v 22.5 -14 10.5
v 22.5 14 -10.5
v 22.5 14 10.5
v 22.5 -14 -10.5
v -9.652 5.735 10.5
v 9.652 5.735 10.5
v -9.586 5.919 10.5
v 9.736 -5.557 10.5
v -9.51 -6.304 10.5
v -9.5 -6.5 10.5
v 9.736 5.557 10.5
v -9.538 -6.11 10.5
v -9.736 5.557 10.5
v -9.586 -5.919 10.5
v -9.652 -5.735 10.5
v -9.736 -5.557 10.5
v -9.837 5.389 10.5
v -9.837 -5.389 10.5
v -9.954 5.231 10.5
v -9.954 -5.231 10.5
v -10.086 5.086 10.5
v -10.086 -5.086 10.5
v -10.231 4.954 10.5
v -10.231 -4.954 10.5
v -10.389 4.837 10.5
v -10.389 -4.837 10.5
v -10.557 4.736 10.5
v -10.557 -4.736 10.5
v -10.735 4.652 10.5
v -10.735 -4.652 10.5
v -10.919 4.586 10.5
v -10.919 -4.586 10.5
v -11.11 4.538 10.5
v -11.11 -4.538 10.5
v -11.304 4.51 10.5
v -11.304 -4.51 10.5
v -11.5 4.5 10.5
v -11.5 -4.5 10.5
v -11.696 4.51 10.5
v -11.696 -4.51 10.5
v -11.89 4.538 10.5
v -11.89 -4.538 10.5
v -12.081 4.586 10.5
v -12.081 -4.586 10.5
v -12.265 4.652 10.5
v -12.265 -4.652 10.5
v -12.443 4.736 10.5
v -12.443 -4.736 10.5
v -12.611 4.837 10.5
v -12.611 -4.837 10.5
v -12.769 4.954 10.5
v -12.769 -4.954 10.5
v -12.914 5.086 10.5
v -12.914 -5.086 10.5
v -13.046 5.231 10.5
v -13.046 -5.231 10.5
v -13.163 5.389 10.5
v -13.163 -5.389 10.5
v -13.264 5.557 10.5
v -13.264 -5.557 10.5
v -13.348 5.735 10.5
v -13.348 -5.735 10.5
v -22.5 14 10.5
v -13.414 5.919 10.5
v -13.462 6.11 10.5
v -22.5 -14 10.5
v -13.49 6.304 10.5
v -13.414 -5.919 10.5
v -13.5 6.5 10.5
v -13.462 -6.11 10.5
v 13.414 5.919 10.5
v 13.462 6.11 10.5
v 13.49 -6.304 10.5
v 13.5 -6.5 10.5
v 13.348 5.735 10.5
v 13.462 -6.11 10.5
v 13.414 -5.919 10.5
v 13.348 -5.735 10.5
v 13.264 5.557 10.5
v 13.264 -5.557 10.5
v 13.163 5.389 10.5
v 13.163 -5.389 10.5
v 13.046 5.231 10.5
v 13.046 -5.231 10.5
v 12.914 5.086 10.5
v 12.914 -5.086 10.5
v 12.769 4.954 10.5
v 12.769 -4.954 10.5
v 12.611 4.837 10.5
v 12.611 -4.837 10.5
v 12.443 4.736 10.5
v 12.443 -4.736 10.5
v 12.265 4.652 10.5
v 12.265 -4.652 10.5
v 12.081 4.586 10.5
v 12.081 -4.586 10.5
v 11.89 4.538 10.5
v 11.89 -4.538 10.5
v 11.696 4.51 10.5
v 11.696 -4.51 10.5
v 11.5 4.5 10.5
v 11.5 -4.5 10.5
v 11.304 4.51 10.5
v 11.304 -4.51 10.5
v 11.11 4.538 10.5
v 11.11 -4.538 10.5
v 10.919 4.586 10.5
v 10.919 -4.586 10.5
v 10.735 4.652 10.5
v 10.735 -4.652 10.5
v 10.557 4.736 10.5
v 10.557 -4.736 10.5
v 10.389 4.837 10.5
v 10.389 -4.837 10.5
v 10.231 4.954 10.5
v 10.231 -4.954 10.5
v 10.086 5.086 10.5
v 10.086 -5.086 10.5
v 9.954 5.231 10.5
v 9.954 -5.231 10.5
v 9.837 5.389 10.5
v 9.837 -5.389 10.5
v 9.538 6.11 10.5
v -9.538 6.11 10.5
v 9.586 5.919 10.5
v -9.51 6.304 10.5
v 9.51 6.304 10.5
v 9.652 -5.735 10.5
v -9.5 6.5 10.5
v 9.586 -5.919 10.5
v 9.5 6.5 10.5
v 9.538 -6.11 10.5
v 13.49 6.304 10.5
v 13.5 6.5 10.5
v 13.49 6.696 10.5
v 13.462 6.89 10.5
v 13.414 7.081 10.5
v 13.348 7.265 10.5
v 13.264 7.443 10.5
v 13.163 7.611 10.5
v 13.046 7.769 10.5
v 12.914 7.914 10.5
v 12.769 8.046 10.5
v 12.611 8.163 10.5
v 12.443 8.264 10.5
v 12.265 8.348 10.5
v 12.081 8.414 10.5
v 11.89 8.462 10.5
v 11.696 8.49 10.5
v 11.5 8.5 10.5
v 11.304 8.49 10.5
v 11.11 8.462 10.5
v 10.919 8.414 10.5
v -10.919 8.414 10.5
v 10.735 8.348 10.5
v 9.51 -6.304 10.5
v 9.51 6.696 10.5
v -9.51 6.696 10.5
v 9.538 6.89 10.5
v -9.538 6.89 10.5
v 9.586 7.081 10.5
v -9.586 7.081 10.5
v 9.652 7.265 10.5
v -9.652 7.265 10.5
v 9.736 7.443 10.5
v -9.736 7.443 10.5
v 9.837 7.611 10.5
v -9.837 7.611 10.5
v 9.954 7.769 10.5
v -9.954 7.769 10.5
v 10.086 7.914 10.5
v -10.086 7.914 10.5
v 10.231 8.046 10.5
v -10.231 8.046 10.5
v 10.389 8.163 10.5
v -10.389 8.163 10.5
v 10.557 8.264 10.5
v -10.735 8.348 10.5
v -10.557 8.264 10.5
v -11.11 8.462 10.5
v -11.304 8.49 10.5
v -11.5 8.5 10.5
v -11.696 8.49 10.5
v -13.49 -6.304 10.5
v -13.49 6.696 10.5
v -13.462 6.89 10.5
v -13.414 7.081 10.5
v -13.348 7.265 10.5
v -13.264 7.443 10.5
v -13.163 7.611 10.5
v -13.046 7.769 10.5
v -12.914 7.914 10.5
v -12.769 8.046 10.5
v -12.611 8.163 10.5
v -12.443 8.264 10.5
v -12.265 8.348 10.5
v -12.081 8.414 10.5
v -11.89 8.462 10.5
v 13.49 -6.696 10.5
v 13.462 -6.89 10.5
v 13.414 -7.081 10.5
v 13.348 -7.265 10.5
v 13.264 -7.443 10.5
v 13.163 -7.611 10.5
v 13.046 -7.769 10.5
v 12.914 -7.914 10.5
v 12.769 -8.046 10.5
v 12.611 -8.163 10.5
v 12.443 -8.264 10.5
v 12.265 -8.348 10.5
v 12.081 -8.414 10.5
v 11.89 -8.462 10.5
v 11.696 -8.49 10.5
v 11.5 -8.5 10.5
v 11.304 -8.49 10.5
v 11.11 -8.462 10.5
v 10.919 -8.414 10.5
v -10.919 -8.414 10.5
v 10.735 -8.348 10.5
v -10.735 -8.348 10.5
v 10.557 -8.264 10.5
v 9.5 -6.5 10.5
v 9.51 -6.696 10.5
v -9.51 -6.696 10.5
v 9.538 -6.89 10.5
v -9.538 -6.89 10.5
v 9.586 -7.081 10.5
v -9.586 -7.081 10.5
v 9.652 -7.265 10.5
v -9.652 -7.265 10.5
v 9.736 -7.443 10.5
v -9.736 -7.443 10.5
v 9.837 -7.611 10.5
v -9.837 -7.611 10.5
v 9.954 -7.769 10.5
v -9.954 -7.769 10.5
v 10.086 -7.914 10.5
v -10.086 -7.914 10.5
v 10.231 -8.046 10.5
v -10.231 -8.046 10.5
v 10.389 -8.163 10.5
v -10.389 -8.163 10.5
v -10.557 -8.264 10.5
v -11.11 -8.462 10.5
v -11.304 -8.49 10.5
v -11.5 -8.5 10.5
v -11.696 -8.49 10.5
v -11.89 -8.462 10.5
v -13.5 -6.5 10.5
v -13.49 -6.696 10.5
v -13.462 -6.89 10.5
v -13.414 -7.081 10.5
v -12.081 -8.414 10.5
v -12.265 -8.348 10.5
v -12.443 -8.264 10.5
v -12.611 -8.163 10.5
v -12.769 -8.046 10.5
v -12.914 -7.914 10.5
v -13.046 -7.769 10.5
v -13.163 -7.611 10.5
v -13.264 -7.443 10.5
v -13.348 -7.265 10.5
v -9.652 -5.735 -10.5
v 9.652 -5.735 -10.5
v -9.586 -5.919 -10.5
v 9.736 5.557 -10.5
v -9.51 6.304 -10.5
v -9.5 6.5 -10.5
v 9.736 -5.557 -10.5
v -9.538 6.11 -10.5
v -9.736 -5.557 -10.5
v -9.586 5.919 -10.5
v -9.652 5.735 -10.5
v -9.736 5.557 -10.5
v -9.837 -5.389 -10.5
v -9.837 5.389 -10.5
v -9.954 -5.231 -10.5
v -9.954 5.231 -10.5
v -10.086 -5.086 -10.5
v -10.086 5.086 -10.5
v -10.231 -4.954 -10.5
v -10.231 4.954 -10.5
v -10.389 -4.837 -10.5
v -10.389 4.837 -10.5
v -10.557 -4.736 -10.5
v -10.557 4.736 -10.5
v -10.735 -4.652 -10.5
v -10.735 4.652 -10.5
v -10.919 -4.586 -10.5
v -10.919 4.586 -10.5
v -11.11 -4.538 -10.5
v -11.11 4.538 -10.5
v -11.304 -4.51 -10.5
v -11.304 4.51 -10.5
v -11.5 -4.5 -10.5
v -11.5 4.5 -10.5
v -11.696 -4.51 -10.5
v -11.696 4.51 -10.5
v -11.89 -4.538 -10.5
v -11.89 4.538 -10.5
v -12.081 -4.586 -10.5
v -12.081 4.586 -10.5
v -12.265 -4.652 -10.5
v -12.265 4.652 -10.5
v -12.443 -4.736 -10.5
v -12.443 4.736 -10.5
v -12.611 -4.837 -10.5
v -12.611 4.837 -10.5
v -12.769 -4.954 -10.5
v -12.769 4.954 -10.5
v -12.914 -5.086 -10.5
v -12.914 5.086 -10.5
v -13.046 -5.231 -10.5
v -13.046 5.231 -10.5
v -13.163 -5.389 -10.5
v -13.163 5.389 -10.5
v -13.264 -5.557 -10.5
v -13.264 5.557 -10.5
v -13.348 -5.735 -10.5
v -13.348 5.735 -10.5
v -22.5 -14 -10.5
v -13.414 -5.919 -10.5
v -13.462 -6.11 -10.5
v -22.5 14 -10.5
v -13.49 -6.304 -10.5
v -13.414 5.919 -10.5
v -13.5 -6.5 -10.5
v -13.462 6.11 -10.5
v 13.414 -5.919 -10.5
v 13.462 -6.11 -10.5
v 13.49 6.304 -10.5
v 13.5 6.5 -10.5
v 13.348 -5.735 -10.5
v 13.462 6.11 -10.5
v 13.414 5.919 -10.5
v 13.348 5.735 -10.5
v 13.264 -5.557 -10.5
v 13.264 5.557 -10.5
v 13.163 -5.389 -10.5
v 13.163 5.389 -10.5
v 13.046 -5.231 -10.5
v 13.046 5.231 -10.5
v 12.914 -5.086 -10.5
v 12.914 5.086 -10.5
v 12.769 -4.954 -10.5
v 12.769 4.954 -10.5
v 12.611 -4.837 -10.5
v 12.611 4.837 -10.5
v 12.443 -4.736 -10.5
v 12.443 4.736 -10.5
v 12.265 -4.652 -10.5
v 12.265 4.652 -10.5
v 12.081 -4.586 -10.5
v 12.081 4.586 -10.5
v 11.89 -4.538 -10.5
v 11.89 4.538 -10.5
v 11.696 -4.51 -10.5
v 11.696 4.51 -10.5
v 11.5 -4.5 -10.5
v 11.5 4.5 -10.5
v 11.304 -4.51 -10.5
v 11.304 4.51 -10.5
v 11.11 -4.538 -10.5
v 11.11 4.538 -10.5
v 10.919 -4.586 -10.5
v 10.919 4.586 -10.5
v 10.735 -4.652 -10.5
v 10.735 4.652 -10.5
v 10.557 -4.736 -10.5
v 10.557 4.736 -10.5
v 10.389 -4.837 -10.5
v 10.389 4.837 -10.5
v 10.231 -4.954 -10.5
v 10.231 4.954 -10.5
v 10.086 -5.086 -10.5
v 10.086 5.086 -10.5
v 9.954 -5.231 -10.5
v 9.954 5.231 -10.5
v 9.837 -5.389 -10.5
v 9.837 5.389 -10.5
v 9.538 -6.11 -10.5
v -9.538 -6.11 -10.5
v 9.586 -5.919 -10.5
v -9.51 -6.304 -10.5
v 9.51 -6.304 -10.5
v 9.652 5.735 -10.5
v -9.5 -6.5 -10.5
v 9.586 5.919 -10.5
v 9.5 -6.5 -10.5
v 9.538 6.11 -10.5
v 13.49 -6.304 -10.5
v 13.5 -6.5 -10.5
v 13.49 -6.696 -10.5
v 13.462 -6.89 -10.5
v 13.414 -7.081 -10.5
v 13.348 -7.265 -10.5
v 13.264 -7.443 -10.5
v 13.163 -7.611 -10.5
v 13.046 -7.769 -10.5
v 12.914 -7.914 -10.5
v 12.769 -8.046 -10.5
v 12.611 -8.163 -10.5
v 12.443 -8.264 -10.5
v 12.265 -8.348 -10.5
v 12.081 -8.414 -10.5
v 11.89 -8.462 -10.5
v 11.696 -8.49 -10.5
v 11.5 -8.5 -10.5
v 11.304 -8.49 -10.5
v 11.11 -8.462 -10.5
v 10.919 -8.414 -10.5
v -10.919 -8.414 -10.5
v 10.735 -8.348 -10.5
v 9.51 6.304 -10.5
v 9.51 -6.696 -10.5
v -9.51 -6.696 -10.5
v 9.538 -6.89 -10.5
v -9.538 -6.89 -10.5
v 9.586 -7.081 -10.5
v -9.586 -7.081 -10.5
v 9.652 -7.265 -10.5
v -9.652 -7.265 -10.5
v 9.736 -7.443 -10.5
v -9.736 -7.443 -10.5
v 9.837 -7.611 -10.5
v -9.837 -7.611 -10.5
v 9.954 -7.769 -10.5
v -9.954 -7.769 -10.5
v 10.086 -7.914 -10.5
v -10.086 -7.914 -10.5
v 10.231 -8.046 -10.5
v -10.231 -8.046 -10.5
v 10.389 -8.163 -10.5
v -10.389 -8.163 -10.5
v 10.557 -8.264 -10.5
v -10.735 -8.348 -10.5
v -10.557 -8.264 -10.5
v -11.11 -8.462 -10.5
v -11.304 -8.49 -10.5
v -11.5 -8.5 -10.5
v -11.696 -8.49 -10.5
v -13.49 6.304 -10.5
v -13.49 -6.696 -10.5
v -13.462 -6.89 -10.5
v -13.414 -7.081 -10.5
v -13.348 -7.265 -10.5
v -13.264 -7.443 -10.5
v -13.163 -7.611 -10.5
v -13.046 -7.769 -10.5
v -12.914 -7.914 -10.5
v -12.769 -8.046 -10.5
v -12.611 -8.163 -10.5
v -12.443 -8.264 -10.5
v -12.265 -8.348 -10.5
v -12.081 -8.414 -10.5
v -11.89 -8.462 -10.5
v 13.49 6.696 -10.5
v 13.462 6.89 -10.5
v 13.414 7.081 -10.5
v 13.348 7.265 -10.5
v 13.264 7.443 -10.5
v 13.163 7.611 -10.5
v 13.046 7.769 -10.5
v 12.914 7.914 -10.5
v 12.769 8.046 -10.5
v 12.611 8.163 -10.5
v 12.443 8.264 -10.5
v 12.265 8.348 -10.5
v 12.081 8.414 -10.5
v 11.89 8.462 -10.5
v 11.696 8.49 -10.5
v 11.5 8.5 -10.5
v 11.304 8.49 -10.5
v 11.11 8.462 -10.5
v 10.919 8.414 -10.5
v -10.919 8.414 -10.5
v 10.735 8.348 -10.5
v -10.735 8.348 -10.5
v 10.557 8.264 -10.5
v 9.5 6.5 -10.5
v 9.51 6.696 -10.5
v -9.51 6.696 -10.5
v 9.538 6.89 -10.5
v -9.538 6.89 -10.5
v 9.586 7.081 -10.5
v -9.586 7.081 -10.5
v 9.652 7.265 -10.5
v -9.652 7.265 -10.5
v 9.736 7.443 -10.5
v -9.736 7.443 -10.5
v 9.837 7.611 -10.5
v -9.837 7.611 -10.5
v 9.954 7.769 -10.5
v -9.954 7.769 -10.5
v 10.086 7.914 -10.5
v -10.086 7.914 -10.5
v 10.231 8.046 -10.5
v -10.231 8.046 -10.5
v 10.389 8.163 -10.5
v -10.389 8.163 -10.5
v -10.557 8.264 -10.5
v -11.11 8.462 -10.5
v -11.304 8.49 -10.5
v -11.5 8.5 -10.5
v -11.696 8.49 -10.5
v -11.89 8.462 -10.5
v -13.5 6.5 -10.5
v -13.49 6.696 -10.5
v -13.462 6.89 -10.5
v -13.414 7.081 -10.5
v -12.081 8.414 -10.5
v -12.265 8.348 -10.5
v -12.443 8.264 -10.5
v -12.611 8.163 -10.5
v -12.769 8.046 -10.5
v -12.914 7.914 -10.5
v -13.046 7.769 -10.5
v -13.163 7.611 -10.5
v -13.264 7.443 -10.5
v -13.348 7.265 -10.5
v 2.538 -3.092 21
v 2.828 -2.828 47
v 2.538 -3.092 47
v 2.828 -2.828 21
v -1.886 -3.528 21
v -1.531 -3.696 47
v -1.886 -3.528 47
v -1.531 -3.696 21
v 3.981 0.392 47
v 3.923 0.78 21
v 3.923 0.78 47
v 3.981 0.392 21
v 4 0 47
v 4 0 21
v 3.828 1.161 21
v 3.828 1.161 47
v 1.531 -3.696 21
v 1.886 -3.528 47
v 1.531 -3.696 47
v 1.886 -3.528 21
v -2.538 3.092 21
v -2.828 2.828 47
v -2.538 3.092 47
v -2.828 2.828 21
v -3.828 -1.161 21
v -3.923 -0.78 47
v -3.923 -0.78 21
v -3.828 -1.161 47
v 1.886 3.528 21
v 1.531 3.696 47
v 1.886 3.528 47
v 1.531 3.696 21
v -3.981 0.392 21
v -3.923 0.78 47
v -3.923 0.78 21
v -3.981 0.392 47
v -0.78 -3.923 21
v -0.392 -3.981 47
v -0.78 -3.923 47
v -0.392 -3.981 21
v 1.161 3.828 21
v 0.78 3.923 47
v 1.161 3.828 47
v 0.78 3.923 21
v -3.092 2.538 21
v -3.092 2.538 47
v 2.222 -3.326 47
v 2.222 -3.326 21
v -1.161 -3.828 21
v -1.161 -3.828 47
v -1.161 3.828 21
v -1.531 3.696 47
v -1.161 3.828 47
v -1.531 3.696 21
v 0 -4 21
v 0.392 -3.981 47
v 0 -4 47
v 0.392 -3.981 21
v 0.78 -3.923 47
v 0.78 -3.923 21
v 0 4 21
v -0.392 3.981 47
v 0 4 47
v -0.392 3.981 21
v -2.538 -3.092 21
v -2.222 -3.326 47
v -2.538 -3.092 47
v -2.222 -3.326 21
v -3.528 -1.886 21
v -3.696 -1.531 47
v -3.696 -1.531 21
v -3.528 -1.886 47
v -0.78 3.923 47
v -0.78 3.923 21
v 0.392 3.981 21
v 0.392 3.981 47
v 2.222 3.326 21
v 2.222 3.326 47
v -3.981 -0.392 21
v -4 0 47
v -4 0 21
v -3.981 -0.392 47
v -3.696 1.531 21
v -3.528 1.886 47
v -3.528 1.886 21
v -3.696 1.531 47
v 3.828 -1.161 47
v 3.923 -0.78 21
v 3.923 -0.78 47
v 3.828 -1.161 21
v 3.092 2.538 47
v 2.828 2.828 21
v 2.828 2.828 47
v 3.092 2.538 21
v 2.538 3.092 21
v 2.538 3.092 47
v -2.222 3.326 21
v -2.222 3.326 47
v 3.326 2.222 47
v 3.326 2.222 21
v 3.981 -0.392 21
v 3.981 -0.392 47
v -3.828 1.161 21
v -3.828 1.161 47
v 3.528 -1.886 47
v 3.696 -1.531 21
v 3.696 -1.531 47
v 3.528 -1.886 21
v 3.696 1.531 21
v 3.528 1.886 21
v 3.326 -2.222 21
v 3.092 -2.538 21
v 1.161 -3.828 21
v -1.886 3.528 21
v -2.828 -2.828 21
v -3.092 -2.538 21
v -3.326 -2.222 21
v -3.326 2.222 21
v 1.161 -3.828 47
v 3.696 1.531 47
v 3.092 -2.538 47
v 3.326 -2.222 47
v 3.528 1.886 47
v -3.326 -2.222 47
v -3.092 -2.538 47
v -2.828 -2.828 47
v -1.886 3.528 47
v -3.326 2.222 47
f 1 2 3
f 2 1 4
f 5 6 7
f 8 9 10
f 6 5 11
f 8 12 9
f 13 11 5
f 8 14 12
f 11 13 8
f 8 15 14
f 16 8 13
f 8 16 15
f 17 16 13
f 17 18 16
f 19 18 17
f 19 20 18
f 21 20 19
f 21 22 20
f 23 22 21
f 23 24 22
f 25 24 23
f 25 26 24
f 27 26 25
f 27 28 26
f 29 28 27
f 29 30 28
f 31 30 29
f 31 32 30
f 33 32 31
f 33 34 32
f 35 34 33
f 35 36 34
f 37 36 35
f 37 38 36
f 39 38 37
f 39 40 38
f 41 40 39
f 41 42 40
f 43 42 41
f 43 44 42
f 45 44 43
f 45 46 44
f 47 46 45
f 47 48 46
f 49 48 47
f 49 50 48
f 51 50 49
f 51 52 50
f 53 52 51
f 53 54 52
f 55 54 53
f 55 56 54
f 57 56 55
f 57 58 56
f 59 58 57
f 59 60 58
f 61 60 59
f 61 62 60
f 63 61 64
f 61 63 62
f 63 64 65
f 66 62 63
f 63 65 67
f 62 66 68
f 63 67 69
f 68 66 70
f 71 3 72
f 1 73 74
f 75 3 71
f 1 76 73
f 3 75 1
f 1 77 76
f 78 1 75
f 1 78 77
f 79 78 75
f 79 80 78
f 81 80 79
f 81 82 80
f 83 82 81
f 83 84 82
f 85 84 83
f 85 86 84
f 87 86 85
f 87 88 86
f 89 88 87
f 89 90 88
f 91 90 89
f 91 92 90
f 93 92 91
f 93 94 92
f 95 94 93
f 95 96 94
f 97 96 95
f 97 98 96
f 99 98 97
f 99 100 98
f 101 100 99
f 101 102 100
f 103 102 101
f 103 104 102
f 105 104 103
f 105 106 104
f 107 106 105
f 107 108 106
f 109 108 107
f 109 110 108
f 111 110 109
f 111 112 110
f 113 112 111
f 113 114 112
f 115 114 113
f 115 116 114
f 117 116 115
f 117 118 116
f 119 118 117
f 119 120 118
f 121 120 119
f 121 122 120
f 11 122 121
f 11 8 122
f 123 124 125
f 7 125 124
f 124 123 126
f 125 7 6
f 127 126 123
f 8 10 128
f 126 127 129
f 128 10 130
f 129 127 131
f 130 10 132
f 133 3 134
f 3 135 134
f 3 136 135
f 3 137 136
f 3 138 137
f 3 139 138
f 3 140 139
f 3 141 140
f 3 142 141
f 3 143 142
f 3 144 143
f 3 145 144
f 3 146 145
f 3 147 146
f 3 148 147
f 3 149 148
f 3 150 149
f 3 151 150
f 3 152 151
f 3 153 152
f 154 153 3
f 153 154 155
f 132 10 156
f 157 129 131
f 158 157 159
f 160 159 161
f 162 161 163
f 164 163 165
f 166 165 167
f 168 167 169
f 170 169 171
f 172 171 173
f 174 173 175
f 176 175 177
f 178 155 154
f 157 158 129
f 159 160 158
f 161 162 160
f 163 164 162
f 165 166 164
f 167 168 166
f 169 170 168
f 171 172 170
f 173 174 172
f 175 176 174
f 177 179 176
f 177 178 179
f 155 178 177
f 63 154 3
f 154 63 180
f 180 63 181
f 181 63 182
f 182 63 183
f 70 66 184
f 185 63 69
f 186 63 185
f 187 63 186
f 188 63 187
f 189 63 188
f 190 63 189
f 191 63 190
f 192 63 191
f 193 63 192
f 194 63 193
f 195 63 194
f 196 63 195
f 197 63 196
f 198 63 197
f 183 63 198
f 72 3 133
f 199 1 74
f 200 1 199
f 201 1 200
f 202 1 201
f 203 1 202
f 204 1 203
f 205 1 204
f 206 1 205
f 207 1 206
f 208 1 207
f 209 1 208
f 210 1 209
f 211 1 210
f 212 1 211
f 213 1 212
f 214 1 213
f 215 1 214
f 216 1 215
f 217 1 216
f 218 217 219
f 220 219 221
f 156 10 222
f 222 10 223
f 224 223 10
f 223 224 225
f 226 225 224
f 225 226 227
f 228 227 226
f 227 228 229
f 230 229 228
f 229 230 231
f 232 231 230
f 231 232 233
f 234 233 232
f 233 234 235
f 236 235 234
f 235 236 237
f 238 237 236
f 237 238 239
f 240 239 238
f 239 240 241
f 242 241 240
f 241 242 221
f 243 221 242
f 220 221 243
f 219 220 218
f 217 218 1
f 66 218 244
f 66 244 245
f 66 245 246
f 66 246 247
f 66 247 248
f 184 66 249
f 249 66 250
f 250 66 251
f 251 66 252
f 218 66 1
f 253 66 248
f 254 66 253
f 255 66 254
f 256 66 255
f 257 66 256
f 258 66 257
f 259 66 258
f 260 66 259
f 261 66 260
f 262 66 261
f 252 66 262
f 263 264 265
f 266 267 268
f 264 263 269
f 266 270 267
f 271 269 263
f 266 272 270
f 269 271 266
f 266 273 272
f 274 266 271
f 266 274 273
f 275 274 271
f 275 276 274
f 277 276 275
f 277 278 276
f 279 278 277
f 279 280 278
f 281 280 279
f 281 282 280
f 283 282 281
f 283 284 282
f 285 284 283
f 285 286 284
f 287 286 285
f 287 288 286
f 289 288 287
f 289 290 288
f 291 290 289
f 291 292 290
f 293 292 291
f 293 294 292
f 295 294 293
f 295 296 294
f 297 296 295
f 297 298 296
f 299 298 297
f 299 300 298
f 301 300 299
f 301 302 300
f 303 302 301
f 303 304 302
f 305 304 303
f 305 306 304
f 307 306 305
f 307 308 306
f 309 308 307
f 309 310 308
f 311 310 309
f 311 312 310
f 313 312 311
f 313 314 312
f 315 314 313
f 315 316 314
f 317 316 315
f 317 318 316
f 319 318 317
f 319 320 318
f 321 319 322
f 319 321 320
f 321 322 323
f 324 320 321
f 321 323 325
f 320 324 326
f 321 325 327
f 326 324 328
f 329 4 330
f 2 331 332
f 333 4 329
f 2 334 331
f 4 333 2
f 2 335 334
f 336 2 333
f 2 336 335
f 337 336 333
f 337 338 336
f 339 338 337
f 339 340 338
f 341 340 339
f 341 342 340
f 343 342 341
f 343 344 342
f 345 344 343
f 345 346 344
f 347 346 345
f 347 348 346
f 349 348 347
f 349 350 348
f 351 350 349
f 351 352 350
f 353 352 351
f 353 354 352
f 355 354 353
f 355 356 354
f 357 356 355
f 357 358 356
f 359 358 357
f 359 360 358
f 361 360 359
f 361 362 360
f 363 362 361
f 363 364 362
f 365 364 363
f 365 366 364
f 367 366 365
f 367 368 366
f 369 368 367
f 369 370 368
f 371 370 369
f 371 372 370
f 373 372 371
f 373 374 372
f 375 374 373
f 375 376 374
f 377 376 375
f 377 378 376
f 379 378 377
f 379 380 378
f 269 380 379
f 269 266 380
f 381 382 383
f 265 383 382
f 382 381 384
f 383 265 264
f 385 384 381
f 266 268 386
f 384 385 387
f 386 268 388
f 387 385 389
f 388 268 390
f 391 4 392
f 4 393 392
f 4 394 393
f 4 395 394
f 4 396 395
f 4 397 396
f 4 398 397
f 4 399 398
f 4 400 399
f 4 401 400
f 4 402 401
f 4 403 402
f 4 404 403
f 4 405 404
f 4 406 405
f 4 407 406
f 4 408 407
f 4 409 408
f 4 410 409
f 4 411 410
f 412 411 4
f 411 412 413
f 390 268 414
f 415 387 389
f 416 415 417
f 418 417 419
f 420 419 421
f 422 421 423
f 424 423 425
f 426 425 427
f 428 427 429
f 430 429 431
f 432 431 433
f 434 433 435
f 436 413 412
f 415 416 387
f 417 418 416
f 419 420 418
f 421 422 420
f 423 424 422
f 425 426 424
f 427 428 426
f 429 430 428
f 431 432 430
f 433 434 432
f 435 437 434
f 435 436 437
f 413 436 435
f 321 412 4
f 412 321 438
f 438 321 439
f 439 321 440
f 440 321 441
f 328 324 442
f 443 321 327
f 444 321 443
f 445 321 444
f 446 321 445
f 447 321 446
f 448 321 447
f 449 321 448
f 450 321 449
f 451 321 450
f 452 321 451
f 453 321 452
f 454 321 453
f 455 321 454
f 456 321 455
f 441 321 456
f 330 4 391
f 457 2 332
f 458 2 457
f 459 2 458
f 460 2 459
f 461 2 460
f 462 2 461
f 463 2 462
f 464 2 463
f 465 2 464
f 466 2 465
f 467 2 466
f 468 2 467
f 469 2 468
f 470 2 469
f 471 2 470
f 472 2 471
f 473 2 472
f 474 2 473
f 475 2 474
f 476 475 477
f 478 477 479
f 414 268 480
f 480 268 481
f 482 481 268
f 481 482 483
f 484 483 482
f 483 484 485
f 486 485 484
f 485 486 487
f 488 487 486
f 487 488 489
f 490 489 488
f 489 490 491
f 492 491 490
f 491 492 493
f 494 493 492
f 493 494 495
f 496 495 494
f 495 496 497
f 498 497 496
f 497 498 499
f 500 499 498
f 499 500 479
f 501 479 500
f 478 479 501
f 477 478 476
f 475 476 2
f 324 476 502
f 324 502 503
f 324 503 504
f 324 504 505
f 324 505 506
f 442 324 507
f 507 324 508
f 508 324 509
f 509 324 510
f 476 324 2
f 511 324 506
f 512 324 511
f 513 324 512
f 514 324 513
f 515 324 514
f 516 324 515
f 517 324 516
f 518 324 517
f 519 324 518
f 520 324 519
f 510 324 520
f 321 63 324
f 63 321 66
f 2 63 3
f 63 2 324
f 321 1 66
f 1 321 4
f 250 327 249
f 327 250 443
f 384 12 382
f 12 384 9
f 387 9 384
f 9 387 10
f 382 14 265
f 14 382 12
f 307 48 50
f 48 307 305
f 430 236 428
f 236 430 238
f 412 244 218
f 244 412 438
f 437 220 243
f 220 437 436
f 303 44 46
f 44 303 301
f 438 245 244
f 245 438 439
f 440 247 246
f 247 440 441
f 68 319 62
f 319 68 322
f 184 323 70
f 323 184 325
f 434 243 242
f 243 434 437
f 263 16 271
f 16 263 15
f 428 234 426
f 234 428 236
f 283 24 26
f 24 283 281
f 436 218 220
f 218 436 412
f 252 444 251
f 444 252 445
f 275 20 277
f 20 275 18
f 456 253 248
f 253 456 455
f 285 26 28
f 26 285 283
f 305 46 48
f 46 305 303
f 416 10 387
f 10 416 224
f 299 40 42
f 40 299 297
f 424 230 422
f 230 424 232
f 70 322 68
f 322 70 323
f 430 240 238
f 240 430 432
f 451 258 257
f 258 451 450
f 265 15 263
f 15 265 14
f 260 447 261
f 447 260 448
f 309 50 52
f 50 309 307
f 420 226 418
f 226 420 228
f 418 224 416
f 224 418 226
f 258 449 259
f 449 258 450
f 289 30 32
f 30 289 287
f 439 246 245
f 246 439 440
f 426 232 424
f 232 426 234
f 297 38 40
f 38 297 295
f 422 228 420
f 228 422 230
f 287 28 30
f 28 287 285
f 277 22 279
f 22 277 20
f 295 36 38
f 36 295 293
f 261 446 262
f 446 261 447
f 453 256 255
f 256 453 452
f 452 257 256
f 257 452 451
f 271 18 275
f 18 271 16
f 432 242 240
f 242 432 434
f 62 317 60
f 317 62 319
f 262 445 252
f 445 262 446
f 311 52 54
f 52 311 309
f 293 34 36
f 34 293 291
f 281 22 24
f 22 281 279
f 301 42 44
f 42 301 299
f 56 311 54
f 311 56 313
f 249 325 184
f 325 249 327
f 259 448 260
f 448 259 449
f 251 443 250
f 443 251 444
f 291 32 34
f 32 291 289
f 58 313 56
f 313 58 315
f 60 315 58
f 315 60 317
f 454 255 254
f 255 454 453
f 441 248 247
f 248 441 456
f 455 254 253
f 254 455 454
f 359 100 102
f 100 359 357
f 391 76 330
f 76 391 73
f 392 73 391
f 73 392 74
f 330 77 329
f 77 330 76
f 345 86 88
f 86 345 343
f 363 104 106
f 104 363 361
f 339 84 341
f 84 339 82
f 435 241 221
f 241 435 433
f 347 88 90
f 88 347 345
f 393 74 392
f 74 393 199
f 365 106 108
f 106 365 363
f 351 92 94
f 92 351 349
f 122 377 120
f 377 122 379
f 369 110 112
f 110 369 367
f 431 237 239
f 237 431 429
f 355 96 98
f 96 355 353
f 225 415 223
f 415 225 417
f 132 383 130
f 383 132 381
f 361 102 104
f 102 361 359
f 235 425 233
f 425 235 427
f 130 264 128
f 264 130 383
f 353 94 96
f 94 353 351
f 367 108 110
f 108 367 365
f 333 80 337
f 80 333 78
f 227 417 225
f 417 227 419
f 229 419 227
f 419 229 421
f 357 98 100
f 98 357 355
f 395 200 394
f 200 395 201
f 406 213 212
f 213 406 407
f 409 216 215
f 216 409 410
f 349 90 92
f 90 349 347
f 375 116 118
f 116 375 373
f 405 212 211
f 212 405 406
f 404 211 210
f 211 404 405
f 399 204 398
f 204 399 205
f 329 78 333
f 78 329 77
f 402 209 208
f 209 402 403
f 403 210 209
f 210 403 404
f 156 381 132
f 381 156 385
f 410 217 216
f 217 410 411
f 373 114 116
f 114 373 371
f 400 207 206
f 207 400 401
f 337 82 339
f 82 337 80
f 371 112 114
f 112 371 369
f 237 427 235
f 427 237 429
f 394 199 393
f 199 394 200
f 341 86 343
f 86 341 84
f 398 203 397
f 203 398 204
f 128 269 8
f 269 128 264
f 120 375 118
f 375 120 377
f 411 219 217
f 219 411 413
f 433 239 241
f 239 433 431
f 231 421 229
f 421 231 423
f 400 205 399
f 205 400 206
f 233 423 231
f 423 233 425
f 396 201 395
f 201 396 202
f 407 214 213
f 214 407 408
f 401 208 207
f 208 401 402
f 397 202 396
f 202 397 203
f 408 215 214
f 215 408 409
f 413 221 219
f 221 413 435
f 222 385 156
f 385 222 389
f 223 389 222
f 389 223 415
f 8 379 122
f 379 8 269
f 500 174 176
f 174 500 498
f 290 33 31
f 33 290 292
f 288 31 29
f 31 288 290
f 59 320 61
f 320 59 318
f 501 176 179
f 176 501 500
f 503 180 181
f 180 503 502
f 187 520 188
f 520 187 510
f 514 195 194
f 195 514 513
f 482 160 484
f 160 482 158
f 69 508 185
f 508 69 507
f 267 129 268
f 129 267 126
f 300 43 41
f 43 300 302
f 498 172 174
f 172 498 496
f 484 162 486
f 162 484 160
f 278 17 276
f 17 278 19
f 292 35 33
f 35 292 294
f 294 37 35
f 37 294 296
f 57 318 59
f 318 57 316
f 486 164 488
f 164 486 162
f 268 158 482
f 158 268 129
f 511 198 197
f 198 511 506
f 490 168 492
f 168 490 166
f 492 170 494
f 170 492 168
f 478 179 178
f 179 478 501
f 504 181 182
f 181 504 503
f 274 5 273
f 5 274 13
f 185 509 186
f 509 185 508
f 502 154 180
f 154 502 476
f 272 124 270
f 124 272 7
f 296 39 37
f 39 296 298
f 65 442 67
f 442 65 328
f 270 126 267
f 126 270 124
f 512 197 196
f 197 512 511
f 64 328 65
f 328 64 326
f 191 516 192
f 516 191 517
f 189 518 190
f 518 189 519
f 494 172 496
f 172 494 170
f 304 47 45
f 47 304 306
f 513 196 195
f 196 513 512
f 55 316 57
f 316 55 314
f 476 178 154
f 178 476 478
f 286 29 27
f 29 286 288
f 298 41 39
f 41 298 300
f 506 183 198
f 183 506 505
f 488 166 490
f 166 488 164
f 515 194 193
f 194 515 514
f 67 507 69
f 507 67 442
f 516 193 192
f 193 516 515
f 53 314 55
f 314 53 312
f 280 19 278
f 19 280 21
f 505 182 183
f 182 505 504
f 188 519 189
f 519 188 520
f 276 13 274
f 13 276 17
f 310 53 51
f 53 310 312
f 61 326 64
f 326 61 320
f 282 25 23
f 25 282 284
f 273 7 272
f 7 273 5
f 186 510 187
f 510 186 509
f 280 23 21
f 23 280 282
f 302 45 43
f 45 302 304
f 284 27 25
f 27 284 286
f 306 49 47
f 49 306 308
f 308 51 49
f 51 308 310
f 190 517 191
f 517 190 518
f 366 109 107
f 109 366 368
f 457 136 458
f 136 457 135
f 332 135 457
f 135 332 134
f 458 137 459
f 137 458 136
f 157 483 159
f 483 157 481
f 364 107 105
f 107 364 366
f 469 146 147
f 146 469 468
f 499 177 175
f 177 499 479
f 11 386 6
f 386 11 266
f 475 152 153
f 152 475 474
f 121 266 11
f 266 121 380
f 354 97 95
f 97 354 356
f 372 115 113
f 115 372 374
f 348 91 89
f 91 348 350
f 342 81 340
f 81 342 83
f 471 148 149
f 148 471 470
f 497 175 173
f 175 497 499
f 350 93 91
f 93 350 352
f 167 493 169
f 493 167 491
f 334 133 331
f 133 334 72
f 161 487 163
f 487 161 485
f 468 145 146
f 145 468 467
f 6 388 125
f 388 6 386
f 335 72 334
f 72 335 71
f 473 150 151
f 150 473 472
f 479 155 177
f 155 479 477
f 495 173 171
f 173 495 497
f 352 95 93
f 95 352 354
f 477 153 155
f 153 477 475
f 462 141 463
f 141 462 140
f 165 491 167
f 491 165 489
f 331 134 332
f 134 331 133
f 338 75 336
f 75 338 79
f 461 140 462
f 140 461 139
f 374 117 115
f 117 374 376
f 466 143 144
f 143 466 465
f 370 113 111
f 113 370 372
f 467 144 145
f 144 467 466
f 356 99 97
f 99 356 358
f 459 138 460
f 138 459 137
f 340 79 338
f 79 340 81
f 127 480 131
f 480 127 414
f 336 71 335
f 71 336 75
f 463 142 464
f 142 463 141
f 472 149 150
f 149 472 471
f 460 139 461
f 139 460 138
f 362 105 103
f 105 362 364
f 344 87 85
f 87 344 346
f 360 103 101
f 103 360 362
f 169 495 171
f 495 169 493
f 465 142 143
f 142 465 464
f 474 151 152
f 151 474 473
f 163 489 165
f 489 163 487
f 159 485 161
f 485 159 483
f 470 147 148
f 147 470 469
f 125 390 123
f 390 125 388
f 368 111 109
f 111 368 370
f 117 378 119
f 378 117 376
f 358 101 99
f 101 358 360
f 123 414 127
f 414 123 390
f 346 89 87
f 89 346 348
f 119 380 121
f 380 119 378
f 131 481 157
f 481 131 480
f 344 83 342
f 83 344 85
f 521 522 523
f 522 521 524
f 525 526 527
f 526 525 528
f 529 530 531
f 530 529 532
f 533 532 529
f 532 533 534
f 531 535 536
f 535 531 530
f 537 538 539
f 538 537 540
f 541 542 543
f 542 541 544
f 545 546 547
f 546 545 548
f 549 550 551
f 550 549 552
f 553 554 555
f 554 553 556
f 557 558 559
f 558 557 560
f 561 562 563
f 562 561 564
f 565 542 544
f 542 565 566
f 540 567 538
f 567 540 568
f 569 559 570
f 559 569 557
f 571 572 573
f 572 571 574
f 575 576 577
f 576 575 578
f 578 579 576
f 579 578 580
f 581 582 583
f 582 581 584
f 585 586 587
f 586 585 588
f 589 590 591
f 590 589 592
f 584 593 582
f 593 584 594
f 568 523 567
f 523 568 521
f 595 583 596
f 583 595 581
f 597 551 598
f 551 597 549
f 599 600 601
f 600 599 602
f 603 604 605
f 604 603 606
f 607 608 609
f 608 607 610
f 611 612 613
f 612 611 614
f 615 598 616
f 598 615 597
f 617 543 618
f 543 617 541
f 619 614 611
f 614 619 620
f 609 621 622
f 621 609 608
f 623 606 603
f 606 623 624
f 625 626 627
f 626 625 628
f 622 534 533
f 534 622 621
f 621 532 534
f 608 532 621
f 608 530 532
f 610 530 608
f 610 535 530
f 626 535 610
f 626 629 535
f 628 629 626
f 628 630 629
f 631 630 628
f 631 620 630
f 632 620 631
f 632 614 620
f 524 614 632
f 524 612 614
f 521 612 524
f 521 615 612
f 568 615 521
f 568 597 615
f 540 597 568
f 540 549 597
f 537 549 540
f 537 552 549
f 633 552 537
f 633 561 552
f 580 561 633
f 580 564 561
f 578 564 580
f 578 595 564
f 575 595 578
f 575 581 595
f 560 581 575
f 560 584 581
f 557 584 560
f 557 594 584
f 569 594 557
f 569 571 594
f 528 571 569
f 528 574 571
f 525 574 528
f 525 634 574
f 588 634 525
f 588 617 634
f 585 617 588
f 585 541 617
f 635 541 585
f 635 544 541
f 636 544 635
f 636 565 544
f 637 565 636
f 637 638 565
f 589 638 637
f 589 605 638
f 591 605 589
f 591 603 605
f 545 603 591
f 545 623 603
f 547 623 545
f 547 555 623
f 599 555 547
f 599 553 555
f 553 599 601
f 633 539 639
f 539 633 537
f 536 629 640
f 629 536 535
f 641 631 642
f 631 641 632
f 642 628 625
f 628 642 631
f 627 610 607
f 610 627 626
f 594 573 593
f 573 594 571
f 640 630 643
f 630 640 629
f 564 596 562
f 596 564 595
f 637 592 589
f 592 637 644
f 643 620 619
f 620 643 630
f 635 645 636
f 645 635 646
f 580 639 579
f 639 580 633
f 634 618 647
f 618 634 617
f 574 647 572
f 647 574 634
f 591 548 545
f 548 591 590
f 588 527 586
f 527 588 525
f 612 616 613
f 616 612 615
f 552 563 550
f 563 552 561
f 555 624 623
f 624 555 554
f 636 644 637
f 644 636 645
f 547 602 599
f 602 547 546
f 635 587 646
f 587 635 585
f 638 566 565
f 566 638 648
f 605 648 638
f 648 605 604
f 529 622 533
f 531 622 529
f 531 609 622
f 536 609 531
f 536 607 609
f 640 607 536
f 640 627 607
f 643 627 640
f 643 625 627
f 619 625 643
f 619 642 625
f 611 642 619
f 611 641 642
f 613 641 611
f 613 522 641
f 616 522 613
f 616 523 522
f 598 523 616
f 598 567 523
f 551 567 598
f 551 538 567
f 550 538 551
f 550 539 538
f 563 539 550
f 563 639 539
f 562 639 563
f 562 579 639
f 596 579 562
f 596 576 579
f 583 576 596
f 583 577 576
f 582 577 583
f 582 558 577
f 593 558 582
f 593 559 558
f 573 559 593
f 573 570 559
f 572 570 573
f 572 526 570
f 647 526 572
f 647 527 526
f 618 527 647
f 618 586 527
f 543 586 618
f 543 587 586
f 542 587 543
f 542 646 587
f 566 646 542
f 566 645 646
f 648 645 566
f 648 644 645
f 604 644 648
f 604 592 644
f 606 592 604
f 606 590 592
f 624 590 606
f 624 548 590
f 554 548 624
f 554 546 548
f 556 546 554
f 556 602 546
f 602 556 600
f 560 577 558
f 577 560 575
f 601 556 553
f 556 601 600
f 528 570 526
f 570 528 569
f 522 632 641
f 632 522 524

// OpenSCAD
$fn = 64;

module linear_shaft_bearing_block() {
    // Base flange
    base_flange();
    // Shaft bore
    translate([0, 0, 21])
        shaft_bore();
}

module base_flange() {
    difference() {
        // Base block
        cube([45, 28, 21], center = true);
        // Mounting holes
        translate([-11.5, -6.5, 0])
            mounting_hole();
        translate([11.5, -6.5, 0])
            mounting_hole();
        translate([-11.5, 6.5, 0])
            mounting_hole();
        translate([11.5, 6.5, 0])
            mounting_hole();
    }
}

module mounting_hole() {
    cylinder(h = 21, d = 4, center = true);
}

module shaft_bore() {
    translate([0, 0, 13])
        cylinder(h = 26, d = 8, center = true);
}

linear_shaft_bearing_block();
